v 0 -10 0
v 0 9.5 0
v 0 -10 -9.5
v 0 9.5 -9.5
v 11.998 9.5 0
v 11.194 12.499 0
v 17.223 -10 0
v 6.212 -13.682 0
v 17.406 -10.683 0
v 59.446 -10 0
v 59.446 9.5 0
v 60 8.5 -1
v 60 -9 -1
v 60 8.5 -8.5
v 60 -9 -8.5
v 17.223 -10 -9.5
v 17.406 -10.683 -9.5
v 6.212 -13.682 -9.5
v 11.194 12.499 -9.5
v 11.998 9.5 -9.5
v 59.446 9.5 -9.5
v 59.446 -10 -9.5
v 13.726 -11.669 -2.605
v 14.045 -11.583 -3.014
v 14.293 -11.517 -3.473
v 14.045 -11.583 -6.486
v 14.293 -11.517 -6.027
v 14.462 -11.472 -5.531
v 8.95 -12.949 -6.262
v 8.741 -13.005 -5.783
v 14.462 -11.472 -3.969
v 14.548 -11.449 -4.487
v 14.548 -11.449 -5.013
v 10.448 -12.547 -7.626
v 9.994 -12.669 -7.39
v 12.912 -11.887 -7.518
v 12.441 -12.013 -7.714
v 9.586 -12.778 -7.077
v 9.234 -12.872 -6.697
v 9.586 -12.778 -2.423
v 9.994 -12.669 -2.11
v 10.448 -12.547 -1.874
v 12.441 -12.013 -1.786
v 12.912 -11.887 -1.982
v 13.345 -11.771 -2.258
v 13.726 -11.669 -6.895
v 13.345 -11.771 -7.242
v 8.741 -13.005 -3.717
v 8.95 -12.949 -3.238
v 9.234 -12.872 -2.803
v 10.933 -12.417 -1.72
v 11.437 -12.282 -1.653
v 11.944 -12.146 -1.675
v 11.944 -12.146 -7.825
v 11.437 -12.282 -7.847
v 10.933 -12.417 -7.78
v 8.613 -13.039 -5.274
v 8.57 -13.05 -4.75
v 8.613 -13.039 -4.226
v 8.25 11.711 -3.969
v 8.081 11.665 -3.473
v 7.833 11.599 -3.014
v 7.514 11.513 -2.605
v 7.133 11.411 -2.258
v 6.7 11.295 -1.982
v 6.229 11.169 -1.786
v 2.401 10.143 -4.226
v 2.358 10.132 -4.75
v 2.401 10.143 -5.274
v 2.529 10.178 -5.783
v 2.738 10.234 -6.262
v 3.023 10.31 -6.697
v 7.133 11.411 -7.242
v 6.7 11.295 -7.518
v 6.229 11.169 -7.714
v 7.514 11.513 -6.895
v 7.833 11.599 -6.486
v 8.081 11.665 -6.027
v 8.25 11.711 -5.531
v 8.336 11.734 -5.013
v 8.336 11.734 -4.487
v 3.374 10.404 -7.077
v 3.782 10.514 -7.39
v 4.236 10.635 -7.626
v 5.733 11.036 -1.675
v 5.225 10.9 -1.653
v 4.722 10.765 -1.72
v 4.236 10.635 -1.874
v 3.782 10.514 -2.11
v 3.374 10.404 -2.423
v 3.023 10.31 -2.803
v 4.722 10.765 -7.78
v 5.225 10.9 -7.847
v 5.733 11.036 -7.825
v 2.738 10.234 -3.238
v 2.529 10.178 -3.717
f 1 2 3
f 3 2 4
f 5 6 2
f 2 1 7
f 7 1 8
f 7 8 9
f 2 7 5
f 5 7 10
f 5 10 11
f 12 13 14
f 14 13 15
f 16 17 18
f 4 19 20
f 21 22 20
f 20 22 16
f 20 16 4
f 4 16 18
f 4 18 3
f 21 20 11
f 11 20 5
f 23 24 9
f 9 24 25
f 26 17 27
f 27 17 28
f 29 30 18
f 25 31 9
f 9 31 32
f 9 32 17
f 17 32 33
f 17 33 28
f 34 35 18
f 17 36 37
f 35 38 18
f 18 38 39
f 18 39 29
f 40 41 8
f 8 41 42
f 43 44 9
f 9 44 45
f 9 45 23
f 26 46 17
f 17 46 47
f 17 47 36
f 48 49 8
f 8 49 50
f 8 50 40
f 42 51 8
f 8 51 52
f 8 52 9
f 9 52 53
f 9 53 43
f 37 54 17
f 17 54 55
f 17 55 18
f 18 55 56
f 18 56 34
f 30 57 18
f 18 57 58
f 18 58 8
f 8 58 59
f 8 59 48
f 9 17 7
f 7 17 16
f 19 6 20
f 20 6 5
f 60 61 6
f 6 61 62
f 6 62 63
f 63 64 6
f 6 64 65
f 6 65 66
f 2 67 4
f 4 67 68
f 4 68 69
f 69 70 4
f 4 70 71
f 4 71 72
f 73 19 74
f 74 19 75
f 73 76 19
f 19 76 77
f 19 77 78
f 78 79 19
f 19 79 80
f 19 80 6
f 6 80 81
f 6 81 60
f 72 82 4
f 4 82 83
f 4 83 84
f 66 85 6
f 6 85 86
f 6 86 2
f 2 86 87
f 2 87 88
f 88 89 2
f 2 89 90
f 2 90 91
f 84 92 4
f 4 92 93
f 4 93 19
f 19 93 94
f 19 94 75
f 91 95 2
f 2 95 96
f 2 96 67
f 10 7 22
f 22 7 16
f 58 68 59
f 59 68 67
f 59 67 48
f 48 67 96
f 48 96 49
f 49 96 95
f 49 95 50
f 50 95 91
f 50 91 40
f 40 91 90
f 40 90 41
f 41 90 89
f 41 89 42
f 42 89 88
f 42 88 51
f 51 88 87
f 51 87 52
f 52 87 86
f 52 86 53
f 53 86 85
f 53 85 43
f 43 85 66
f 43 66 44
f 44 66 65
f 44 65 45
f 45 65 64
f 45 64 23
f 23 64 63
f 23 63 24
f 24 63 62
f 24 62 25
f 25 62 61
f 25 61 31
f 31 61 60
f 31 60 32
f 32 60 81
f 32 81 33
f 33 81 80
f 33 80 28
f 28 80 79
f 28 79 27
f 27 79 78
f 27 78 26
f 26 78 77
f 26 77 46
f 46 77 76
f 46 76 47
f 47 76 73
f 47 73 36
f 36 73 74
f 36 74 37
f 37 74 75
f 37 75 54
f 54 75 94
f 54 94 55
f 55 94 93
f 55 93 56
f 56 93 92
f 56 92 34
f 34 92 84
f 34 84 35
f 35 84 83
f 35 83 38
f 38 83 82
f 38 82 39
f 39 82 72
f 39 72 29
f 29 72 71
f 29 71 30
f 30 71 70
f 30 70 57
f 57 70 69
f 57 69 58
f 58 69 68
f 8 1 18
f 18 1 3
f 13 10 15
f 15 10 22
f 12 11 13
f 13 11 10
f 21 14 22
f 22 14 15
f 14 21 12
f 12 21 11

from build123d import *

# Parameters (mm, degrees)
SKETCH1_W           = 60
SKETCH1_H           = 9.5
BOSS_EXTRUDE1_DEPTH = 9.5
SKETCH4_W           = 11.588990026
SKETCH4_H           = 9.5
BOSS_EXTRUDE2_DEPTH = 24
SKETCH1_2_W         = 60
SKETCH1_2_H         = 9.5
BOSS_EXTRUDE3_DEPTH = 10
SKETCH7_R           = 3.1
CUT_EXTRUDE2_DEPTH  = 68.001533929
BOSS_EXTRUDE7_DEPTH = 9.5
CHAMFER1_SIZE       = 1
CHAMFER1_SIZE2      = 0.554309051


with BuildPart() as part:
    # Sketch1 → Boss-Extrude1 (new body)
    with BuildSketch(Plane(origin=(0, 0, 0), x_dir=(1, 0, 0), z_dir=(0, 1, 0))):
        with Locations((30, 4.75)):
            Rectangle(SKETCH1_W, SKETCH1_H)
    extrude(amount=BOSS_EXTRUDE1_DEPTH)

    # Sketch4 → Boss-Extrude2 (add)
    with BuildSketch(Plane(origin=(-2.375, 8.863620668, 0), x_dir=(0.9659258262890679, 0.2588190451025225, 0), z_dir=(-0.2588190451025225, 0.9659258262890679, 0))):
        with Locations((8.253275941, 4.75)):
            Rectangle(SKETCH4_W, SKETCH4_H)
    extrude(amount=-BOSS_EXTRUDE2_DEPTH)

    # Sketch1<2> → Boss-Extrude3 (add)
    with BuildSketch(Plane(origin=(0, 0, 0), x_dir=(1, 0, 0), z_dir=(0, 1, 0))):
        with Locations((30, 4.75)):
            Rectangle(SKETCH1_2_W, SKETCH1_2_H)
    extrude(amount=-BOSS_EXTRUDE3_DEPTH)

    # Sketch7 → Cut-Extrude2 (cut, through all)
    with BuildSketch(Plane(origin=(-2.375, 8.863620668, 0), x_dir=(0.9659258262890679, 0.25881904510252246, 0), z_dir=(-0.25881904510252246, 0.9659258262890679, 0))):
        with Locations((8, 4.75)):
            Circle(SKETCH7_R)
    extrude(amount=-CUT_EXTRUDE2_DEPTH, mode=Mode.SUBTRACT)

    # Sketch13 → Boss-Extrude7 (add)
    with BuildSketch(Plane(origin=(0, 0, -9.5), x_dir=(-1, 0, 0), z_dir=(0, 0, -1))):
        Polygon((-6.211657082, -13.682219831), (0, -10), (-5.225009252, -10), align=None)
    extrude(amount=-BOSS_EXTRUDE7_DEPTH)

    # Chamfer1
    chamfer1_edges = [part.edges().sort_by_distance(p)[0] for p in [
        (60, 9.5, -4.75),
        (60, -0.25, 0),
        (60, -10, -4.75),
        (60, -0.25, -9.5),
    ]]
    chamfer1_side = [part.faces().sort_by_distance(p)[0] for p in [
        (60, -0.25, -4.75),
    ]]
    chamfer(chamfer1_edges, length=CHAMFER1_SIZE, length2=CHAMFER1_SIZE2, reference=chamfer1_side[0])


solid = part.part
